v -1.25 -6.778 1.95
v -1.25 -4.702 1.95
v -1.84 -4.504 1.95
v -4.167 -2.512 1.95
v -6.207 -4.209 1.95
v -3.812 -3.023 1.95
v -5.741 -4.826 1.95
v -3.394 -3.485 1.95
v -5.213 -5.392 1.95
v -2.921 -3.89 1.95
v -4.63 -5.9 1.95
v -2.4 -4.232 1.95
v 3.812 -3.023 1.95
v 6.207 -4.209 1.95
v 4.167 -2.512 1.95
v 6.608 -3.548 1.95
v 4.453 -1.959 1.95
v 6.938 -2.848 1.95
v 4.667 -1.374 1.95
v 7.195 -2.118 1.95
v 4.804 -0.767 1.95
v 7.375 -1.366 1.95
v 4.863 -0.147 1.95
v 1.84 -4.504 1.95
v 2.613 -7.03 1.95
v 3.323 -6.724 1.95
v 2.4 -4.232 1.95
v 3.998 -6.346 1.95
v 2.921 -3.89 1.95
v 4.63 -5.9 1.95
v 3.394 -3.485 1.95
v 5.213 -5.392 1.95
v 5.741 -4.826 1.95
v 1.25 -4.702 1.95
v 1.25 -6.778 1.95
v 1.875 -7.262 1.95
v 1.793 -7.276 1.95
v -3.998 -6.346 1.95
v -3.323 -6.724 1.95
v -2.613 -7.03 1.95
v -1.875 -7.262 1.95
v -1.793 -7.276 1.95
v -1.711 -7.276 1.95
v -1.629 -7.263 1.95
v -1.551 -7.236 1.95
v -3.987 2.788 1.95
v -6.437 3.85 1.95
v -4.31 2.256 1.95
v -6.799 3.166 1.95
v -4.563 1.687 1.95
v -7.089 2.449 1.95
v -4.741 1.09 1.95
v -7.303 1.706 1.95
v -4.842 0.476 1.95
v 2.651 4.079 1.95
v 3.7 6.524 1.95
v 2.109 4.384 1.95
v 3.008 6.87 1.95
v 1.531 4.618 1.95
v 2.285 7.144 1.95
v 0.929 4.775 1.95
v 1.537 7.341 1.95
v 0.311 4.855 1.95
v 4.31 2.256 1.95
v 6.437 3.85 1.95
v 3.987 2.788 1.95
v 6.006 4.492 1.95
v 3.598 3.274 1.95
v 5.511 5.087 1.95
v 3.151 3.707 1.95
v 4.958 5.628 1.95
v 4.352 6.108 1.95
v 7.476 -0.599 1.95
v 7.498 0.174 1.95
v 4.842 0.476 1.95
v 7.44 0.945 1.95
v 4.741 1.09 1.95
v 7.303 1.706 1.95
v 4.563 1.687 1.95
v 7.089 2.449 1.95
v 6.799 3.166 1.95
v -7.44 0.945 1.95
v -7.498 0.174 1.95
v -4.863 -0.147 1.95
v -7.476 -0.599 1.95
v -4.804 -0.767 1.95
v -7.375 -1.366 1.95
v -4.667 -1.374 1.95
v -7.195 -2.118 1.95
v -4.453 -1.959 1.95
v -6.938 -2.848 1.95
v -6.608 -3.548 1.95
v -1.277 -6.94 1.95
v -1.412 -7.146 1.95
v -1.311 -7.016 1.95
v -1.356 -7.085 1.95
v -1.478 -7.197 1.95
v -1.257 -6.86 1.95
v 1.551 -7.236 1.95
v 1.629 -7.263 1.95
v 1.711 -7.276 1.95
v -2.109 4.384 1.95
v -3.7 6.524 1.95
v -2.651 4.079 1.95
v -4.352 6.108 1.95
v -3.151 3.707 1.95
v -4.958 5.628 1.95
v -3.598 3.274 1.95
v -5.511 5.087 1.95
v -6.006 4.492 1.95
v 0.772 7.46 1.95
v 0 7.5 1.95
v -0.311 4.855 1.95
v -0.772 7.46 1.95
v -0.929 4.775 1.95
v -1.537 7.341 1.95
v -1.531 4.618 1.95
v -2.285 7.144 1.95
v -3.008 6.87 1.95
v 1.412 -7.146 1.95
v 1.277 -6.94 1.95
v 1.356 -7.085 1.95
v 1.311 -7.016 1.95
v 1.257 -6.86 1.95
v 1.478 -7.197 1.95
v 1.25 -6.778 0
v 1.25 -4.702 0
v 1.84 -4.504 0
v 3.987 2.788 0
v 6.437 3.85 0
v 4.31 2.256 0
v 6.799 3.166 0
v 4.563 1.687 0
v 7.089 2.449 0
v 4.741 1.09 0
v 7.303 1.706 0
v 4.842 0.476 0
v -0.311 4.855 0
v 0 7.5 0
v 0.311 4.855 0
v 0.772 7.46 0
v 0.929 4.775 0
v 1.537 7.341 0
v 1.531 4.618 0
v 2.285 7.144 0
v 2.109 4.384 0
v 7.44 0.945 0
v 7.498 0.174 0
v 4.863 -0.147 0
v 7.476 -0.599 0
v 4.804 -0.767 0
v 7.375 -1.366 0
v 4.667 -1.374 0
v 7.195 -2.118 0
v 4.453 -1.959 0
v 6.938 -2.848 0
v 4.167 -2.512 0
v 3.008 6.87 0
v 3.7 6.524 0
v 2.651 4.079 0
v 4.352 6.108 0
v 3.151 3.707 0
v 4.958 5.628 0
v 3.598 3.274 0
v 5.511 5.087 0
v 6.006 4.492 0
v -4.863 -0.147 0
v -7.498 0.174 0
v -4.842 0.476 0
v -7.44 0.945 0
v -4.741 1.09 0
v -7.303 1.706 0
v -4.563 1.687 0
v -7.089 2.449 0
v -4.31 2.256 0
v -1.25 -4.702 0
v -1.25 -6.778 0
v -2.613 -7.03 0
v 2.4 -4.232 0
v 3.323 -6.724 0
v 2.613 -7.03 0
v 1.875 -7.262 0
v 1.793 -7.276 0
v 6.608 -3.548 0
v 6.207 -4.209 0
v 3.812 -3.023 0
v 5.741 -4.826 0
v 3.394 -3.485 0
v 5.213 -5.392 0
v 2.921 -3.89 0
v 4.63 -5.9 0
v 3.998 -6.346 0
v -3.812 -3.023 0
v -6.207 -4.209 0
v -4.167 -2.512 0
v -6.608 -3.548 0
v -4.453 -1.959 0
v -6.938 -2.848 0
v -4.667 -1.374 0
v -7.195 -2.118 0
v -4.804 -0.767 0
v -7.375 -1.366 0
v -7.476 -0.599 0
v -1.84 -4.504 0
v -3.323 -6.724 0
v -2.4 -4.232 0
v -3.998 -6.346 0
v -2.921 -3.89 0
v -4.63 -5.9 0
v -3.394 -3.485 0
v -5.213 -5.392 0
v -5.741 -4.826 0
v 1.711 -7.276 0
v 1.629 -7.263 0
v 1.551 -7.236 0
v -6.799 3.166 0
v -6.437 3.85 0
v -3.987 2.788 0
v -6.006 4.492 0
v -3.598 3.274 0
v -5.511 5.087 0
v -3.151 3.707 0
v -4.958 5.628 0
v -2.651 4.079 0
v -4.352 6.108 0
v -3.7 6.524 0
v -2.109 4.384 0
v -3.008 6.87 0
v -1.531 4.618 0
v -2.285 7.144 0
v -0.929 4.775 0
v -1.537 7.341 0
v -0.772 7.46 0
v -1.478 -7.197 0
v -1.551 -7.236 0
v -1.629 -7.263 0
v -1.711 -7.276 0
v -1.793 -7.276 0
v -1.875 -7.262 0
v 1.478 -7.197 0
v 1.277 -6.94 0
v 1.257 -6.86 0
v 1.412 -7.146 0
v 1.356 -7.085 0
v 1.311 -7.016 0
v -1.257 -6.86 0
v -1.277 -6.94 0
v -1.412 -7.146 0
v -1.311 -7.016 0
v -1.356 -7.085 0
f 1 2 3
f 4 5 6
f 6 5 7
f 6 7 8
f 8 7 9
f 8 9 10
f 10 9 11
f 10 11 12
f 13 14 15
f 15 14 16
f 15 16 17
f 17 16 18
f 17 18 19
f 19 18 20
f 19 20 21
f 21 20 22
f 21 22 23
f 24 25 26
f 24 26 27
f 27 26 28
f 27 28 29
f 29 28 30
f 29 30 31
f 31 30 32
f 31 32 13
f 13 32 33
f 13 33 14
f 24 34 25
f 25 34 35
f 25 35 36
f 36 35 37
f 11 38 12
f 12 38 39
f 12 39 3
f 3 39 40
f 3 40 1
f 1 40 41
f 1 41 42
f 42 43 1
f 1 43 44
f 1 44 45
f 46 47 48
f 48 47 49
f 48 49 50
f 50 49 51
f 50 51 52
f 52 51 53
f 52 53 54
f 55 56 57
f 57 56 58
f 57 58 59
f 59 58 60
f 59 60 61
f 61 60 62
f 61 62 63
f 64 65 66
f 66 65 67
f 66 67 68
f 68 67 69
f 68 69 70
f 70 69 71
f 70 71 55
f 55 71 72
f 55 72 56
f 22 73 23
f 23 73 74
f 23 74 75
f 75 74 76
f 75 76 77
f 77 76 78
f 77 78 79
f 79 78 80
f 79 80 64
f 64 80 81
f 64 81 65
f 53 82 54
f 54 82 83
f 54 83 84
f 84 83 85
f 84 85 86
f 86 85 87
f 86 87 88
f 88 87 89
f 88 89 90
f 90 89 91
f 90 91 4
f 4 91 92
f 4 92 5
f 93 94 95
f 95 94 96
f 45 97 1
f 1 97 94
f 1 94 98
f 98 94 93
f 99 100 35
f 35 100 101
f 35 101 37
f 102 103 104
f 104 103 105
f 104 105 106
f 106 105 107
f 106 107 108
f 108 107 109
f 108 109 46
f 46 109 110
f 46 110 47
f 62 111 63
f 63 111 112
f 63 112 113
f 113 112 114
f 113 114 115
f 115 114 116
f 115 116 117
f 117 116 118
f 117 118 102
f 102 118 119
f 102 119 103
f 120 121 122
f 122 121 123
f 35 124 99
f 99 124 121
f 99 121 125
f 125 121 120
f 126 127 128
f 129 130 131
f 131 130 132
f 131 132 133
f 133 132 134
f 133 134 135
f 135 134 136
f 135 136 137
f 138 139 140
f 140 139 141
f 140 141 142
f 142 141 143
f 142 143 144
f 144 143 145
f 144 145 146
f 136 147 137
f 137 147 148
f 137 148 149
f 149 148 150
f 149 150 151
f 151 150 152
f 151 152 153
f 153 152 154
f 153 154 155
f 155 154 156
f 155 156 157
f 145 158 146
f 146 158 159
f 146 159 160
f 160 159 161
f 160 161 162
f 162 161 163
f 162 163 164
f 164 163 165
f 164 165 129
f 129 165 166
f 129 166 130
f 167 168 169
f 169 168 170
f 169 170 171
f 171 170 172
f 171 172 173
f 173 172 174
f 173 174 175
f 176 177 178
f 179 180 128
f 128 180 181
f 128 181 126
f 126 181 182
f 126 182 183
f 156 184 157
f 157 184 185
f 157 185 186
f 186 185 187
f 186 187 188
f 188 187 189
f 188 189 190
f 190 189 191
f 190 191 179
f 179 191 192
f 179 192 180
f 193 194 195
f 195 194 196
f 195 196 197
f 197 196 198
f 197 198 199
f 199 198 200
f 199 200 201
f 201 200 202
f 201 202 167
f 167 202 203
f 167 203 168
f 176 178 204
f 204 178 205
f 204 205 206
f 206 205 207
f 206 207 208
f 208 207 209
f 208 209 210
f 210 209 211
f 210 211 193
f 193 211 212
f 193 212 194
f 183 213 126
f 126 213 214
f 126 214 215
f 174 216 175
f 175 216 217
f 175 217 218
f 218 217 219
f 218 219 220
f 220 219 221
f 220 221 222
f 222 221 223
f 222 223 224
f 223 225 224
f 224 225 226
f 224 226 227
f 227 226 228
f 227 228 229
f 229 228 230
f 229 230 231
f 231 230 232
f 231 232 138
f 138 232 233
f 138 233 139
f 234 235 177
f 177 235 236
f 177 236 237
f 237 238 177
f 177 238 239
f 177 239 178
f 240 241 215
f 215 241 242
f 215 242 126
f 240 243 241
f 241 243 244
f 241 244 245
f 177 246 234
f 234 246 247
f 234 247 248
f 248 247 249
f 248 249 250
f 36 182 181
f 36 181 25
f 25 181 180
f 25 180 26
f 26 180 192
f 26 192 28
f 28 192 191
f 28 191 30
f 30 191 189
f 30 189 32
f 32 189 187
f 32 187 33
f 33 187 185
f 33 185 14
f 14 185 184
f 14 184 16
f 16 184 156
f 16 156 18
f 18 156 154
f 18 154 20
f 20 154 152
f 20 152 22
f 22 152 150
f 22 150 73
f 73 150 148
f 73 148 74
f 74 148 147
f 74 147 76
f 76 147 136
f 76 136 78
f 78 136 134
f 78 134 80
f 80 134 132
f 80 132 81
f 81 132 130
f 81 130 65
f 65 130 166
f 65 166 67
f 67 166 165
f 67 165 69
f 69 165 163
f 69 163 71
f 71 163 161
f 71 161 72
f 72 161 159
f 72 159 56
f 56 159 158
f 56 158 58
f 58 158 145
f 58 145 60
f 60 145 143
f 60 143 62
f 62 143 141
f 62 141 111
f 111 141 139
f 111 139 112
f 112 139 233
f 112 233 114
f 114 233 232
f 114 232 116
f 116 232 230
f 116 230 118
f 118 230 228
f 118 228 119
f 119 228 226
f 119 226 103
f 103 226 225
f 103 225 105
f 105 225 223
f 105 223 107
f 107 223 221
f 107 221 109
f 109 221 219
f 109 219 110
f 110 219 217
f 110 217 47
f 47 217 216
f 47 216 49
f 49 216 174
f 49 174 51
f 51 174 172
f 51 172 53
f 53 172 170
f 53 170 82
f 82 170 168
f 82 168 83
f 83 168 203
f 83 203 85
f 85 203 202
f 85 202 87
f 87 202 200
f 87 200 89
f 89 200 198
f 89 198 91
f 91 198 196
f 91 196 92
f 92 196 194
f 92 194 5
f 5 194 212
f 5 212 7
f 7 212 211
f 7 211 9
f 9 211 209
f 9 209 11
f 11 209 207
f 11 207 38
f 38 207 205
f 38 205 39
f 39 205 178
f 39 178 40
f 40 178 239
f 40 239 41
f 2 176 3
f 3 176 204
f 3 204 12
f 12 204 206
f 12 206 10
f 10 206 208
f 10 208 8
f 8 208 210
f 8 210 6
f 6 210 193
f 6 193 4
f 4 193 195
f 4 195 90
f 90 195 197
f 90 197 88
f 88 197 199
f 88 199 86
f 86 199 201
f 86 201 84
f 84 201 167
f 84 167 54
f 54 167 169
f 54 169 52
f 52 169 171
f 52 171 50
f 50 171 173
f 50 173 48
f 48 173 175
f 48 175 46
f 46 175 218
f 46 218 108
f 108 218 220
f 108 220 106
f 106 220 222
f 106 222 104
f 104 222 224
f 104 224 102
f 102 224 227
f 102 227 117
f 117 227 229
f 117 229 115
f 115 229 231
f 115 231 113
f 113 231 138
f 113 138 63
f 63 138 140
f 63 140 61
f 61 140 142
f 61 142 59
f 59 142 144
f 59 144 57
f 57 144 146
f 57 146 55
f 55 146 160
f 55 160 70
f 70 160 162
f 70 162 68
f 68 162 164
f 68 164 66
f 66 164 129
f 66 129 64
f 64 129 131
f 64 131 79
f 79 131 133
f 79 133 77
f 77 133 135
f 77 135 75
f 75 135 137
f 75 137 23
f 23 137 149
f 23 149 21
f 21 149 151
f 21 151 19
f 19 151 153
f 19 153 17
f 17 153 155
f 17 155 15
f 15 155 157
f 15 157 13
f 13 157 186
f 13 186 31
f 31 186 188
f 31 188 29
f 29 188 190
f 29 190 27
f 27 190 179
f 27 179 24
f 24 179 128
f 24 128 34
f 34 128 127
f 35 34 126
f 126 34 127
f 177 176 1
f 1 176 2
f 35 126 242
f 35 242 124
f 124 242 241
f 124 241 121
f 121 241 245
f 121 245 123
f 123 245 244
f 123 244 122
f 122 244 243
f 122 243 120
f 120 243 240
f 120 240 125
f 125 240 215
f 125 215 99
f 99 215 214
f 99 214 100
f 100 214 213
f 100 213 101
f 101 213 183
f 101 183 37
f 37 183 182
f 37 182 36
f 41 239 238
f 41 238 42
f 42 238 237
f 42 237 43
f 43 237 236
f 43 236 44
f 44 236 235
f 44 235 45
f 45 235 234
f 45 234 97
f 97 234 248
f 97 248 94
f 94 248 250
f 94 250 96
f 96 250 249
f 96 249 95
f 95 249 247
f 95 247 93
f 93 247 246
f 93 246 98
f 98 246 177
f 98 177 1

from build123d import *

# Parameters (mm, degrees)
SKETCH1_R           = 7.5
SKETCH1_R_2         = 4.865
BOSS_EXTRUDE1_DEPTH = 1.95
SKETCH2_W           = 2.5
SKETCH2_H           = 4.968115063
CUT_EXTRUDE1_DEPTH  = 11.784363681
FILLET1_R           = 0.5


with BuildPart() as part:
    # Sketch1 → Boss-Extrude1 (new body)
    with BuildSketch(Plane.XY):
        Circle(SKETCH1_R)
        Circle(SKETCH1_R_2, mode=Mode.SUBTRACT)
    extrude(amount=BOSS_EXTRUDE1_DEPTH)

    # Sketch2 → Cut-Extrude1 (cut, through all)
    with BuildSketch(Plane.XY.offset(1.95)):
        with Locations((0, -6.251822647)):
            Rectangle(SKETCH2_W, SKETCH2_H)
    extrude(amount=-CUT_EXTRUDE1_DEPTH, mode=Mode.SUBTRACT)

    # Fillet1
    fillet1_edges = [part.edges().sort_by_distance(p)[0] for p in [
        (-1.25, -7.395099729, 0.975),
        (1.25, -7.395099729, 0.975),
    ]]
    fillet(fillet1_edges, radius=FILLET1_R)


solid = part.part
